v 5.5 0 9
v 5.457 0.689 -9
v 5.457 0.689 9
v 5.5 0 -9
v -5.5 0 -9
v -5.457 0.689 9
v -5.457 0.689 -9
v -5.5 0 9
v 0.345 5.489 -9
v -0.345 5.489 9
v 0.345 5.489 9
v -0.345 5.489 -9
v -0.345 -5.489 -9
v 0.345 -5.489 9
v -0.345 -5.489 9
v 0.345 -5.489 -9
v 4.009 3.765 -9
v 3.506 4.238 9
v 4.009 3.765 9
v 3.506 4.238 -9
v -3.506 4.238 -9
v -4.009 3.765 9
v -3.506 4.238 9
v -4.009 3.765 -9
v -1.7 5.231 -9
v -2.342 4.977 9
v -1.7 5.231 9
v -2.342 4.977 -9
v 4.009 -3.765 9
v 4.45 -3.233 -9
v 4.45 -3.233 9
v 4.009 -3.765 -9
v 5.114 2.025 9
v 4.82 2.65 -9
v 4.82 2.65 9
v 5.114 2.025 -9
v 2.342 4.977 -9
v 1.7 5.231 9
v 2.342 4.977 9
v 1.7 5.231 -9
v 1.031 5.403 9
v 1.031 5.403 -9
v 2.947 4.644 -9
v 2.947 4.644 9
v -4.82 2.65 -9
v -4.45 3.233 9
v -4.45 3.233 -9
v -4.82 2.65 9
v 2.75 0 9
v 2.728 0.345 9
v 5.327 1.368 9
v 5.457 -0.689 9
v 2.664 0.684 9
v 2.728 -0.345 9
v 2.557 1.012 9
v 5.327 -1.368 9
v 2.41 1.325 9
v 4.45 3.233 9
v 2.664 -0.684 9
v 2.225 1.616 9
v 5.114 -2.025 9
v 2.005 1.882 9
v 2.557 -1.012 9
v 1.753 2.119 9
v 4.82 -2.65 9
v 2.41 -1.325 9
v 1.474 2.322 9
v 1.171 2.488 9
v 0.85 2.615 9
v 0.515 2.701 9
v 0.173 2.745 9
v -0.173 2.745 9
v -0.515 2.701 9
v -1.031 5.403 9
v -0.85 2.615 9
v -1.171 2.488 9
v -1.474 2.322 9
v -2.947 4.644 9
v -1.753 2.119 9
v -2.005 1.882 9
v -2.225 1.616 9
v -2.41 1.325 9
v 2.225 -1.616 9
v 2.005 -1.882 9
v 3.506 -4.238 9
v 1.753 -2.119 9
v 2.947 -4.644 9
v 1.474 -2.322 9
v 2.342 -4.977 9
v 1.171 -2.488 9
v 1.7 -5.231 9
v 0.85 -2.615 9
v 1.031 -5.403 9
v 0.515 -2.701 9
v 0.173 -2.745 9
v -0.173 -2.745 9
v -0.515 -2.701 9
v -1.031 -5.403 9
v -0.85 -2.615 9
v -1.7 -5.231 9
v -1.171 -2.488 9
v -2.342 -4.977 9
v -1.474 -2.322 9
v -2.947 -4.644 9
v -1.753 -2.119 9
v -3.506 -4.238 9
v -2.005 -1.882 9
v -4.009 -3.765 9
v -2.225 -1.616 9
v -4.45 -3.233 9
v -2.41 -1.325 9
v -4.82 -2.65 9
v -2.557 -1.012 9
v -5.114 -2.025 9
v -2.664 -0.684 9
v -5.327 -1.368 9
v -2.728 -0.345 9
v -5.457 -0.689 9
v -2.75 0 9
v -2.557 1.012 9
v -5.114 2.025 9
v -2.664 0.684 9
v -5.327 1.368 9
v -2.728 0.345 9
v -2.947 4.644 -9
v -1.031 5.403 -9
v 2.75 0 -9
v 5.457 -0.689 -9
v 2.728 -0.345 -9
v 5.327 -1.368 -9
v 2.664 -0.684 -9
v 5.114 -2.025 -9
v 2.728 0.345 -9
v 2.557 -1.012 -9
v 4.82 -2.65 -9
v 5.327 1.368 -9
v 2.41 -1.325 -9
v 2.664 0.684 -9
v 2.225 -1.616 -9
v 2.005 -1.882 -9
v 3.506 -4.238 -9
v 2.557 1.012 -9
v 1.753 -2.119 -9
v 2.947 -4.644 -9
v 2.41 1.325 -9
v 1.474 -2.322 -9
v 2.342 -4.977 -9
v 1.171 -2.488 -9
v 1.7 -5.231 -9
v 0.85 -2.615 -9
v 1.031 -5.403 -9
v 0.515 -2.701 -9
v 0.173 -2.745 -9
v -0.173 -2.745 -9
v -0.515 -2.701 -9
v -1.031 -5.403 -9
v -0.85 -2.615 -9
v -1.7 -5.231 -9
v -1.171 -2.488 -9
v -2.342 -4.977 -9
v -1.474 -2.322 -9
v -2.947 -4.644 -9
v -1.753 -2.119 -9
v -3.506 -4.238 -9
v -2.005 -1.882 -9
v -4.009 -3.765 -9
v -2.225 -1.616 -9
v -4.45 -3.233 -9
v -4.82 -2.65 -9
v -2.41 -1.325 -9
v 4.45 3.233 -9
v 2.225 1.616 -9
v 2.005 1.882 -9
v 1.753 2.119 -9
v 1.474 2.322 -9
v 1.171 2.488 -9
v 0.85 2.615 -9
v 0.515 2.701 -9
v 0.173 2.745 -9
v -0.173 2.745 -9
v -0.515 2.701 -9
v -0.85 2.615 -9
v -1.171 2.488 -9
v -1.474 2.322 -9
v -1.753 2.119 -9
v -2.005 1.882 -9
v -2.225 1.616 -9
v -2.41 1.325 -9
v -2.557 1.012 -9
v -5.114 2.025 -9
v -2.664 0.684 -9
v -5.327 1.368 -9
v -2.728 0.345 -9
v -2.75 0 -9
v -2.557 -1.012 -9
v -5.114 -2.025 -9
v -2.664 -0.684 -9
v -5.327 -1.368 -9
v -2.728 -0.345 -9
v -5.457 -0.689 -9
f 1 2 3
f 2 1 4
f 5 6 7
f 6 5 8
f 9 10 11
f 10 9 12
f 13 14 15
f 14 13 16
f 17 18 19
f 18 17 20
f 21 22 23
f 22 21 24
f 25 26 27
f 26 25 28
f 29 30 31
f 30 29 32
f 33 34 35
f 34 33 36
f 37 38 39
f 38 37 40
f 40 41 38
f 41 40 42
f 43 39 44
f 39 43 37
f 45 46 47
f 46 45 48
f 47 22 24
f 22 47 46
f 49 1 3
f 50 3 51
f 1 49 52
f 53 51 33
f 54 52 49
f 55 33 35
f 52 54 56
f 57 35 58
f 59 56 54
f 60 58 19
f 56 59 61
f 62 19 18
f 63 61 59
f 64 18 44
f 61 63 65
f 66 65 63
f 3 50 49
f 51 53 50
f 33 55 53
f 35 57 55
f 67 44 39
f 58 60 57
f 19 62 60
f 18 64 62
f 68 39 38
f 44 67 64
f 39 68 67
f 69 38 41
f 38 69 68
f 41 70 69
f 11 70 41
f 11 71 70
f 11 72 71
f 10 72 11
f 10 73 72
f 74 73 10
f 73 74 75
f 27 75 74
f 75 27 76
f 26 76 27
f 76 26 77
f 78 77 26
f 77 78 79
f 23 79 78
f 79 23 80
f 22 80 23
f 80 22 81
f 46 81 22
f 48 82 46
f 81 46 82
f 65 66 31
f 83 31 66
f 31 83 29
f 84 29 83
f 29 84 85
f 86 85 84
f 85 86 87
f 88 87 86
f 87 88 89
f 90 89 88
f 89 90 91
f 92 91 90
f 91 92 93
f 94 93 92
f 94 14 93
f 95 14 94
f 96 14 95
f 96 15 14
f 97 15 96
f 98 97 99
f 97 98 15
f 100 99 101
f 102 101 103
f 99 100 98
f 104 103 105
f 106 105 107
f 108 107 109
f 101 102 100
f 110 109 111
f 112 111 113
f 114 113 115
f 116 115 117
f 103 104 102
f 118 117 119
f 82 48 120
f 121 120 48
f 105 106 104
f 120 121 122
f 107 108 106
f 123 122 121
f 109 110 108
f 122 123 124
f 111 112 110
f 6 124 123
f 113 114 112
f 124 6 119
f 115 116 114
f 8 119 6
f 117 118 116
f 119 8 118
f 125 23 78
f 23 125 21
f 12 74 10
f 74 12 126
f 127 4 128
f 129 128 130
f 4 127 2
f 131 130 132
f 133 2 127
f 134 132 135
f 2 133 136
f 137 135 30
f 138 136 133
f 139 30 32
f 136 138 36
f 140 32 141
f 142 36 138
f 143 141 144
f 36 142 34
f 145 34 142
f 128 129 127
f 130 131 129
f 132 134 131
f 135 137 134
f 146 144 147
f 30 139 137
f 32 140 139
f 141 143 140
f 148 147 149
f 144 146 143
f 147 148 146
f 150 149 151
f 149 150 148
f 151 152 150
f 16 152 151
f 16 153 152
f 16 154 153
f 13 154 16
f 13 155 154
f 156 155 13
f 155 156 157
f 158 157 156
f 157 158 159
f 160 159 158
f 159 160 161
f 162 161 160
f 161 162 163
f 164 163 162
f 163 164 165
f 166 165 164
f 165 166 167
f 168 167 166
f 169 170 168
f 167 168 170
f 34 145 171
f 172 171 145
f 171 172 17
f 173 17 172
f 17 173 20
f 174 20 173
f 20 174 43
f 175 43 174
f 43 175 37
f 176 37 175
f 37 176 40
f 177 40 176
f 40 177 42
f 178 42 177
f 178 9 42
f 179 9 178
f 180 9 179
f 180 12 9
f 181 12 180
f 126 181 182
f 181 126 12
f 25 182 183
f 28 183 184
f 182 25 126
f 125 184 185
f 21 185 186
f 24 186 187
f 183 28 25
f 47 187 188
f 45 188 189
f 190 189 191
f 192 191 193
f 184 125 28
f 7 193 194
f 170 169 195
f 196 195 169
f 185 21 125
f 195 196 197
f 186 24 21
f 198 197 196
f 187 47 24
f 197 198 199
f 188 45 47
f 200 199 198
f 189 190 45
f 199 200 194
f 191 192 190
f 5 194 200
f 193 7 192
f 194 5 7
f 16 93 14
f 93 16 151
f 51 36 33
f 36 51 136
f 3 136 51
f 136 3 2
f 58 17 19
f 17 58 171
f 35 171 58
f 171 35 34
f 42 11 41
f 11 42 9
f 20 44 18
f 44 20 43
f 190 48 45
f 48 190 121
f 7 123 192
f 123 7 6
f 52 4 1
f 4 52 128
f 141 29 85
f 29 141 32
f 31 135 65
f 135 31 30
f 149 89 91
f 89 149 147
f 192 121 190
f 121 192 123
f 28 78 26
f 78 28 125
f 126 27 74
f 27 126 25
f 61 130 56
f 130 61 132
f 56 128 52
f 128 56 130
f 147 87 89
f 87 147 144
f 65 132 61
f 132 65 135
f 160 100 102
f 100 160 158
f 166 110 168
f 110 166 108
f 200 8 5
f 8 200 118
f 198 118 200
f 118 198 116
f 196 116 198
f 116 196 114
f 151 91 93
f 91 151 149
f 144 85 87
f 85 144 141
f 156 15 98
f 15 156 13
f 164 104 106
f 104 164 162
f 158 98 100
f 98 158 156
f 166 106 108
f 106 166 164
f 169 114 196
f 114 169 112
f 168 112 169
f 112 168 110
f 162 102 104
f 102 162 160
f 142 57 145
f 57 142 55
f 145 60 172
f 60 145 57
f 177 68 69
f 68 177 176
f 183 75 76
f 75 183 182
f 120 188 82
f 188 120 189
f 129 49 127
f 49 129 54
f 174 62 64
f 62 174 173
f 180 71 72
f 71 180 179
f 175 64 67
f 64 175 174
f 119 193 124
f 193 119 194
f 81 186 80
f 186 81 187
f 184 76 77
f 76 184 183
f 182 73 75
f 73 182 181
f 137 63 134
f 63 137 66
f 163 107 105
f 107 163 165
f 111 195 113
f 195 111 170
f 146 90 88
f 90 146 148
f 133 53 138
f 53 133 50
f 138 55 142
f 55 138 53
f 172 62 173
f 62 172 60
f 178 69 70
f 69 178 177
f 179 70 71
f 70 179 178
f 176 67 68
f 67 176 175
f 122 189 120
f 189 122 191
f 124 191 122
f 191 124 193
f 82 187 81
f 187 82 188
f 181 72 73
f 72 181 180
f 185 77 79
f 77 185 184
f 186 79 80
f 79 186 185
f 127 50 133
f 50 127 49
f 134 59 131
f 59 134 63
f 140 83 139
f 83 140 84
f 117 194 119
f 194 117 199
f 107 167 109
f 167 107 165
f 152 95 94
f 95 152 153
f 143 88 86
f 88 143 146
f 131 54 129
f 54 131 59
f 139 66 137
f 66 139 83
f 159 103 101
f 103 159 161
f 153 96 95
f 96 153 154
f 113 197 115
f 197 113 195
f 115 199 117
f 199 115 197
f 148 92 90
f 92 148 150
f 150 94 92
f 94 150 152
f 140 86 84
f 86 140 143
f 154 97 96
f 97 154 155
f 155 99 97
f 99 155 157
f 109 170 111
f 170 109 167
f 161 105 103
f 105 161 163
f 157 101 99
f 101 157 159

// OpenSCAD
$fn = 50;


difference() {
	union() {
		translate(v = [0, 0, -9.0000000000]) {
			cylinder(h = 18, r = 5.5000000000);
		}
	}
	union() {
		translate(v = [0, 0, -100.0000000000]) {
			cylinder(h = 200, r = 2.7500000000);
		}
	}
}
